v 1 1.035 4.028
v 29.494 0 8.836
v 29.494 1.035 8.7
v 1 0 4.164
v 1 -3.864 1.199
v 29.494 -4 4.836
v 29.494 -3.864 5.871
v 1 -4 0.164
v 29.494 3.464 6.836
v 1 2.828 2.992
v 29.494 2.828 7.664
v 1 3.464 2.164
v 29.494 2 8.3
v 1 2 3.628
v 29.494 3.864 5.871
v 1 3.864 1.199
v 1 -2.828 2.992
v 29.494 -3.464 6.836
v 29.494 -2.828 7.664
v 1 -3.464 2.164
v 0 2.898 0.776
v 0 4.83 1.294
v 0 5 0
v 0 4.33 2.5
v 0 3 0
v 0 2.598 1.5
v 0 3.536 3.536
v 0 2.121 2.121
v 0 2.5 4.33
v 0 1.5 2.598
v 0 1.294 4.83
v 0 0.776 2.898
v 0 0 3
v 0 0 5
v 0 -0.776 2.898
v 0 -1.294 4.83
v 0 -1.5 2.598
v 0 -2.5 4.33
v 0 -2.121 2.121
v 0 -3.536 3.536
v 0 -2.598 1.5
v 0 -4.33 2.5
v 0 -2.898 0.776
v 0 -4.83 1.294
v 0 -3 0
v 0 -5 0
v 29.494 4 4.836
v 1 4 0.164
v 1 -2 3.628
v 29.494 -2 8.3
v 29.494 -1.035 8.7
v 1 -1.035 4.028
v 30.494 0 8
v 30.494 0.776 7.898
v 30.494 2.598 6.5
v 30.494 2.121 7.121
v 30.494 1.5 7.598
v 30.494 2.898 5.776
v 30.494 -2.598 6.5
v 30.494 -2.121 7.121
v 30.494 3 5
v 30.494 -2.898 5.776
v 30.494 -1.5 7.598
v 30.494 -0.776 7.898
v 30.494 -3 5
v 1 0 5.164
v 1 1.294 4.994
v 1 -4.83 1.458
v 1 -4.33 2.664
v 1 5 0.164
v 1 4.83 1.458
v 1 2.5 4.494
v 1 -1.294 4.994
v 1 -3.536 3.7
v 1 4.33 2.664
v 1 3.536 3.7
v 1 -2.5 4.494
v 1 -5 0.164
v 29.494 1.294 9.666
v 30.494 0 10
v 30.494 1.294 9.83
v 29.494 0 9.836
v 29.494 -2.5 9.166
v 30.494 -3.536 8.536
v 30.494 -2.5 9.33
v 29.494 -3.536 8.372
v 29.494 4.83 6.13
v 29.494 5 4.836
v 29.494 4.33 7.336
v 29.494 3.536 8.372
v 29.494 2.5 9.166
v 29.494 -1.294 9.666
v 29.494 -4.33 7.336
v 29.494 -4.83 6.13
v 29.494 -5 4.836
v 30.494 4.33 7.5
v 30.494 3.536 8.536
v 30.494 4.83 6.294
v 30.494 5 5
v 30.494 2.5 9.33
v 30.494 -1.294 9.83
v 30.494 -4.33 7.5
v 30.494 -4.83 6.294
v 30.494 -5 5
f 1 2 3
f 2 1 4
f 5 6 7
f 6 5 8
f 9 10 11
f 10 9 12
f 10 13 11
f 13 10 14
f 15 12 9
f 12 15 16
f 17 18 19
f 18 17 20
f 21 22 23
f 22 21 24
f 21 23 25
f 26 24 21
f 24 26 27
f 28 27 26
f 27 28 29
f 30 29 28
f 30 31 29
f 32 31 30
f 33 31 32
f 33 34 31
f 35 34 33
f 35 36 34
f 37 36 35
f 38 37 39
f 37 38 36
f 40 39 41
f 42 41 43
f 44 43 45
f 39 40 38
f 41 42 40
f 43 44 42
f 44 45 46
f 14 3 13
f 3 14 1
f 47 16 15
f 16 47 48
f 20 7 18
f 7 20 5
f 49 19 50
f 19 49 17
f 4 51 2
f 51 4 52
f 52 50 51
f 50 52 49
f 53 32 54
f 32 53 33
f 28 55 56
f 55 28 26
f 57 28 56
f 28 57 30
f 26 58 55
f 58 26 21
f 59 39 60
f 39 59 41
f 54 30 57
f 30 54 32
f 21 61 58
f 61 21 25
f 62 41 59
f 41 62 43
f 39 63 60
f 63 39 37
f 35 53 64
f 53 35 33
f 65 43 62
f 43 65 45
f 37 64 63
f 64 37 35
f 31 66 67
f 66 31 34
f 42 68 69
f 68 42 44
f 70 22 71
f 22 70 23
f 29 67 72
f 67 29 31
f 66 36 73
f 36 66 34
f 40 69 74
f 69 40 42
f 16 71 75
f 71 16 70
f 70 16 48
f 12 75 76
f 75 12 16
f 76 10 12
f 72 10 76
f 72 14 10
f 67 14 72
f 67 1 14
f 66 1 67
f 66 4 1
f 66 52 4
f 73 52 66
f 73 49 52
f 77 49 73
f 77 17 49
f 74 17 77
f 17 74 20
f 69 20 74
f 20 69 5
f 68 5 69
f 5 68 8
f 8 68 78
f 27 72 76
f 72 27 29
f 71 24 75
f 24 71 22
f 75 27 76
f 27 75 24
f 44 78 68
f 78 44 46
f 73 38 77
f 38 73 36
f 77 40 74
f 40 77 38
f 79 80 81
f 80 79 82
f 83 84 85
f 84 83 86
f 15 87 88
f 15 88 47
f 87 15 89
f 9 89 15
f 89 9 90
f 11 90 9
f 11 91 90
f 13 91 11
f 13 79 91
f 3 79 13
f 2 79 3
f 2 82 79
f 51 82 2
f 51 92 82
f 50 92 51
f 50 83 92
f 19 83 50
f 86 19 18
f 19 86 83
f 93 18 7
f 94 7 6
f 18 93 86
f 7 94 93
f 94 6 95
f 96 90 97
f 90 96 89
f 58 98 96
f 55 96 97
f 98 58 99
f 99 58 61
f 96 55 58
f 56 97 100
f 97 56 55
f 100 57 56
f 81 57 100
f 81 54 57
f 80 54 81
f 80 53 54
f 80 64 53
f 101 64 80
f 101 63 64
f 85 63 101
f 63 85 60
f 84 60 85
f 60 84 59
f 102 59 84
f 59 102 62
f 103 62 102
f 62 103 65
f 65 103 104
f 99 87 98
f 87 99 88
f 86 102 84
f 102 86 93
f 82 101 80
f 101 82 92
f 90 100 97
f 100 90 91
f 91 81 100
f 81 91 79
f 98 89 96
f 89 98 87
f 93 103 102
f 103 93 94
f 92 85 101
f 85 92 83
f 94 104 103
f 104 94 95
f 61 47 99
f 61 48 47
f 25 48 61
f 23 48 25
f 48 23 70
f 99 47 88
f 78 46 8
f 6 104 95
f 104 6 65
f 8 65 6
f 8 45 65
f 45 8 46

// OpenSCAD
// file: ../build_environments.scad
// build_environments.scad: modules to build level sections
//

module pool(diameter=10.0, wall_height=2.0, step_width=3.0, connections=[])
{
    difference() {
        union() {
        difference() {
            cylinder(h=0.5,r1=diameter+step_width,r2=diameter+step_width,$fn=48);
            translate([0,0,-0.1])
                cylinder(h=0.7,r1=diameter,r2=diameter,$fn=48);
        }
        difference() {
            cylinder(h=wall_height,r1=diameter+step_width+1.0,r2=diameter+step_width+1.0,$fn=48);
            translate([0,0,-0.1])
                cylinder(h=wall_height+0.2,r1=diameter+step_width,r2=diameter+step_width,$fn=48);
        }
        }
    
        for (c = connections)
        {
            rotate([0,90,0]) {
                angle = atan2(c[1],c[0]);
                rotate([-angle,0,0]) {
                    cylinder(h=diameter+5.0,r1=c[2],r2=c[2],$fn=48);
                }
            }
        }
    }
}

module straight(length=10.0, width=2.0, dy1=0.0, dy2=0.0, dz=0.0)
{
    dims = [0, 0, 0, 0, 0, (dz/length)];
    matrix = [
        [ 1, dims[0], dims[1], 0 ],
        [ dims[2], 1, dims[4], 0 ],
        [ dims[5], dims[3], 1, 0 ],
        [ 0, 0, 0, 1 ]
    ];
    multmatrix(matrix)
    difference() {
        translate([dy1,0,0])
        union() {
            rotate([0,90,0]) {
                difference() {
                    cylinder(h=(length-dy1-dy2),r1=width+1.0,r2=width+1.0,$fn=24);
                    translate([0,0,-0.1])
                        cylinder(h=(length-dy1-dy2+0.2),r1=width,r2=width,$fn=24);
                }
                difference() {
                    cylinder(h=1.0,r1=width+2.0,r2=width+2.0,$fn=24);
                    translate([0,0,-0.1])
                        cylinder(h=1.2,r1=width,r2=width,$fn=24);
                }
                translate([0,0,(length-dy1-dy2)-1.0]) {
                    difference() {
                        cylinder(h=1.0,r1=width+2.0,r2=width+2.0,$fn=24);
                        translate([0,0,-0.1])
                            cylinder(h=1.2,r1=width,r2=width,$fn=24);
                    }
                }
            }
        }
        translate([0,0,-(2*width+4.0)/2])
            cube([3*length,3*length,2*width+4.0],center=true);
    }
}

module curve(p0=[0,0], center=[0,0], dir=1, angle=0.0, width=2.0)
{
    radius = sqrt((p0[0]-center[0])*(p0[0]-center[0]) + (p0[1]-center[1])*(p0[1]-center[1]));
    if (dir == 0) {
        difference() {
            rotate([0,0,-90])
            difference() {
                rotate_extrude(angle = angle, convexity = 10, $fn=32)
                    translate([radius, 0, 0])
                        circle(r = width+1.0,$fn=24);
                rotate([0,0,-1.0])
                    rotate_extrude(angle = angle+2.0, convexity = 10, $fn=32)
                        translate([radius, 0, 0])
                            circle(r = width,$fn=24);
            }
            translate([0,0,-(2*width+4.0)/2])
                cube([5*radius,5*radius,2*width+4.0],center=true);
        }
    }
    else {
        difference() {
            rotate([0,0,90])
            difference() {
                rotate_extrude(angle = -angle, convexity = 10, $fn=32)
                    translate([radius, 0, 0])
                        circle(r = width+1.0,$fn=24);
                rotate([0,0,1.0])
                    rotate_extrude(angle = -angle-2.0, convexity = 10, $fn=32)
                        translate([radius, 0, 0])
                            circle(r = width,$fn=24);
            }
            translate([0,0,-(2*width+4.0)/2])
                cube([5*radius,5*radius,2*width+4.0],center=true);
        }
    }

}

// test pool
//pool(diameter=12.0000, wall_height=3.0000, step_width=3.0000, connections=[[0.0000,-26.0000,2.0000], [23.6074,0.0000,2.0000]]);

// test straight, slope
//straight(length=26.0000, width=2.0000, dy1=11.8322, dy2=6.7082, dz=0.0000);
//straight(length=29.1549, width=12.0000, dy1=0.0000, dy2=0.0000, dz=-15.0000);

// test curve
//curve(p0=[23.6074, 0.0000], center=[23.6074, 5.0000], dir=0, angle=60.1011, width=2.0000);
//curve(p0=[33.6426, 12.4219], center=[37.9771, 9.9295], dir=1, angle=120.4627, width=2.0000);
// main file
use <../build_environments.scad>;
straight(length=30.4938, width=3.0000, dy1=0.0000, dy2=0.0000, dz=5.0000);
